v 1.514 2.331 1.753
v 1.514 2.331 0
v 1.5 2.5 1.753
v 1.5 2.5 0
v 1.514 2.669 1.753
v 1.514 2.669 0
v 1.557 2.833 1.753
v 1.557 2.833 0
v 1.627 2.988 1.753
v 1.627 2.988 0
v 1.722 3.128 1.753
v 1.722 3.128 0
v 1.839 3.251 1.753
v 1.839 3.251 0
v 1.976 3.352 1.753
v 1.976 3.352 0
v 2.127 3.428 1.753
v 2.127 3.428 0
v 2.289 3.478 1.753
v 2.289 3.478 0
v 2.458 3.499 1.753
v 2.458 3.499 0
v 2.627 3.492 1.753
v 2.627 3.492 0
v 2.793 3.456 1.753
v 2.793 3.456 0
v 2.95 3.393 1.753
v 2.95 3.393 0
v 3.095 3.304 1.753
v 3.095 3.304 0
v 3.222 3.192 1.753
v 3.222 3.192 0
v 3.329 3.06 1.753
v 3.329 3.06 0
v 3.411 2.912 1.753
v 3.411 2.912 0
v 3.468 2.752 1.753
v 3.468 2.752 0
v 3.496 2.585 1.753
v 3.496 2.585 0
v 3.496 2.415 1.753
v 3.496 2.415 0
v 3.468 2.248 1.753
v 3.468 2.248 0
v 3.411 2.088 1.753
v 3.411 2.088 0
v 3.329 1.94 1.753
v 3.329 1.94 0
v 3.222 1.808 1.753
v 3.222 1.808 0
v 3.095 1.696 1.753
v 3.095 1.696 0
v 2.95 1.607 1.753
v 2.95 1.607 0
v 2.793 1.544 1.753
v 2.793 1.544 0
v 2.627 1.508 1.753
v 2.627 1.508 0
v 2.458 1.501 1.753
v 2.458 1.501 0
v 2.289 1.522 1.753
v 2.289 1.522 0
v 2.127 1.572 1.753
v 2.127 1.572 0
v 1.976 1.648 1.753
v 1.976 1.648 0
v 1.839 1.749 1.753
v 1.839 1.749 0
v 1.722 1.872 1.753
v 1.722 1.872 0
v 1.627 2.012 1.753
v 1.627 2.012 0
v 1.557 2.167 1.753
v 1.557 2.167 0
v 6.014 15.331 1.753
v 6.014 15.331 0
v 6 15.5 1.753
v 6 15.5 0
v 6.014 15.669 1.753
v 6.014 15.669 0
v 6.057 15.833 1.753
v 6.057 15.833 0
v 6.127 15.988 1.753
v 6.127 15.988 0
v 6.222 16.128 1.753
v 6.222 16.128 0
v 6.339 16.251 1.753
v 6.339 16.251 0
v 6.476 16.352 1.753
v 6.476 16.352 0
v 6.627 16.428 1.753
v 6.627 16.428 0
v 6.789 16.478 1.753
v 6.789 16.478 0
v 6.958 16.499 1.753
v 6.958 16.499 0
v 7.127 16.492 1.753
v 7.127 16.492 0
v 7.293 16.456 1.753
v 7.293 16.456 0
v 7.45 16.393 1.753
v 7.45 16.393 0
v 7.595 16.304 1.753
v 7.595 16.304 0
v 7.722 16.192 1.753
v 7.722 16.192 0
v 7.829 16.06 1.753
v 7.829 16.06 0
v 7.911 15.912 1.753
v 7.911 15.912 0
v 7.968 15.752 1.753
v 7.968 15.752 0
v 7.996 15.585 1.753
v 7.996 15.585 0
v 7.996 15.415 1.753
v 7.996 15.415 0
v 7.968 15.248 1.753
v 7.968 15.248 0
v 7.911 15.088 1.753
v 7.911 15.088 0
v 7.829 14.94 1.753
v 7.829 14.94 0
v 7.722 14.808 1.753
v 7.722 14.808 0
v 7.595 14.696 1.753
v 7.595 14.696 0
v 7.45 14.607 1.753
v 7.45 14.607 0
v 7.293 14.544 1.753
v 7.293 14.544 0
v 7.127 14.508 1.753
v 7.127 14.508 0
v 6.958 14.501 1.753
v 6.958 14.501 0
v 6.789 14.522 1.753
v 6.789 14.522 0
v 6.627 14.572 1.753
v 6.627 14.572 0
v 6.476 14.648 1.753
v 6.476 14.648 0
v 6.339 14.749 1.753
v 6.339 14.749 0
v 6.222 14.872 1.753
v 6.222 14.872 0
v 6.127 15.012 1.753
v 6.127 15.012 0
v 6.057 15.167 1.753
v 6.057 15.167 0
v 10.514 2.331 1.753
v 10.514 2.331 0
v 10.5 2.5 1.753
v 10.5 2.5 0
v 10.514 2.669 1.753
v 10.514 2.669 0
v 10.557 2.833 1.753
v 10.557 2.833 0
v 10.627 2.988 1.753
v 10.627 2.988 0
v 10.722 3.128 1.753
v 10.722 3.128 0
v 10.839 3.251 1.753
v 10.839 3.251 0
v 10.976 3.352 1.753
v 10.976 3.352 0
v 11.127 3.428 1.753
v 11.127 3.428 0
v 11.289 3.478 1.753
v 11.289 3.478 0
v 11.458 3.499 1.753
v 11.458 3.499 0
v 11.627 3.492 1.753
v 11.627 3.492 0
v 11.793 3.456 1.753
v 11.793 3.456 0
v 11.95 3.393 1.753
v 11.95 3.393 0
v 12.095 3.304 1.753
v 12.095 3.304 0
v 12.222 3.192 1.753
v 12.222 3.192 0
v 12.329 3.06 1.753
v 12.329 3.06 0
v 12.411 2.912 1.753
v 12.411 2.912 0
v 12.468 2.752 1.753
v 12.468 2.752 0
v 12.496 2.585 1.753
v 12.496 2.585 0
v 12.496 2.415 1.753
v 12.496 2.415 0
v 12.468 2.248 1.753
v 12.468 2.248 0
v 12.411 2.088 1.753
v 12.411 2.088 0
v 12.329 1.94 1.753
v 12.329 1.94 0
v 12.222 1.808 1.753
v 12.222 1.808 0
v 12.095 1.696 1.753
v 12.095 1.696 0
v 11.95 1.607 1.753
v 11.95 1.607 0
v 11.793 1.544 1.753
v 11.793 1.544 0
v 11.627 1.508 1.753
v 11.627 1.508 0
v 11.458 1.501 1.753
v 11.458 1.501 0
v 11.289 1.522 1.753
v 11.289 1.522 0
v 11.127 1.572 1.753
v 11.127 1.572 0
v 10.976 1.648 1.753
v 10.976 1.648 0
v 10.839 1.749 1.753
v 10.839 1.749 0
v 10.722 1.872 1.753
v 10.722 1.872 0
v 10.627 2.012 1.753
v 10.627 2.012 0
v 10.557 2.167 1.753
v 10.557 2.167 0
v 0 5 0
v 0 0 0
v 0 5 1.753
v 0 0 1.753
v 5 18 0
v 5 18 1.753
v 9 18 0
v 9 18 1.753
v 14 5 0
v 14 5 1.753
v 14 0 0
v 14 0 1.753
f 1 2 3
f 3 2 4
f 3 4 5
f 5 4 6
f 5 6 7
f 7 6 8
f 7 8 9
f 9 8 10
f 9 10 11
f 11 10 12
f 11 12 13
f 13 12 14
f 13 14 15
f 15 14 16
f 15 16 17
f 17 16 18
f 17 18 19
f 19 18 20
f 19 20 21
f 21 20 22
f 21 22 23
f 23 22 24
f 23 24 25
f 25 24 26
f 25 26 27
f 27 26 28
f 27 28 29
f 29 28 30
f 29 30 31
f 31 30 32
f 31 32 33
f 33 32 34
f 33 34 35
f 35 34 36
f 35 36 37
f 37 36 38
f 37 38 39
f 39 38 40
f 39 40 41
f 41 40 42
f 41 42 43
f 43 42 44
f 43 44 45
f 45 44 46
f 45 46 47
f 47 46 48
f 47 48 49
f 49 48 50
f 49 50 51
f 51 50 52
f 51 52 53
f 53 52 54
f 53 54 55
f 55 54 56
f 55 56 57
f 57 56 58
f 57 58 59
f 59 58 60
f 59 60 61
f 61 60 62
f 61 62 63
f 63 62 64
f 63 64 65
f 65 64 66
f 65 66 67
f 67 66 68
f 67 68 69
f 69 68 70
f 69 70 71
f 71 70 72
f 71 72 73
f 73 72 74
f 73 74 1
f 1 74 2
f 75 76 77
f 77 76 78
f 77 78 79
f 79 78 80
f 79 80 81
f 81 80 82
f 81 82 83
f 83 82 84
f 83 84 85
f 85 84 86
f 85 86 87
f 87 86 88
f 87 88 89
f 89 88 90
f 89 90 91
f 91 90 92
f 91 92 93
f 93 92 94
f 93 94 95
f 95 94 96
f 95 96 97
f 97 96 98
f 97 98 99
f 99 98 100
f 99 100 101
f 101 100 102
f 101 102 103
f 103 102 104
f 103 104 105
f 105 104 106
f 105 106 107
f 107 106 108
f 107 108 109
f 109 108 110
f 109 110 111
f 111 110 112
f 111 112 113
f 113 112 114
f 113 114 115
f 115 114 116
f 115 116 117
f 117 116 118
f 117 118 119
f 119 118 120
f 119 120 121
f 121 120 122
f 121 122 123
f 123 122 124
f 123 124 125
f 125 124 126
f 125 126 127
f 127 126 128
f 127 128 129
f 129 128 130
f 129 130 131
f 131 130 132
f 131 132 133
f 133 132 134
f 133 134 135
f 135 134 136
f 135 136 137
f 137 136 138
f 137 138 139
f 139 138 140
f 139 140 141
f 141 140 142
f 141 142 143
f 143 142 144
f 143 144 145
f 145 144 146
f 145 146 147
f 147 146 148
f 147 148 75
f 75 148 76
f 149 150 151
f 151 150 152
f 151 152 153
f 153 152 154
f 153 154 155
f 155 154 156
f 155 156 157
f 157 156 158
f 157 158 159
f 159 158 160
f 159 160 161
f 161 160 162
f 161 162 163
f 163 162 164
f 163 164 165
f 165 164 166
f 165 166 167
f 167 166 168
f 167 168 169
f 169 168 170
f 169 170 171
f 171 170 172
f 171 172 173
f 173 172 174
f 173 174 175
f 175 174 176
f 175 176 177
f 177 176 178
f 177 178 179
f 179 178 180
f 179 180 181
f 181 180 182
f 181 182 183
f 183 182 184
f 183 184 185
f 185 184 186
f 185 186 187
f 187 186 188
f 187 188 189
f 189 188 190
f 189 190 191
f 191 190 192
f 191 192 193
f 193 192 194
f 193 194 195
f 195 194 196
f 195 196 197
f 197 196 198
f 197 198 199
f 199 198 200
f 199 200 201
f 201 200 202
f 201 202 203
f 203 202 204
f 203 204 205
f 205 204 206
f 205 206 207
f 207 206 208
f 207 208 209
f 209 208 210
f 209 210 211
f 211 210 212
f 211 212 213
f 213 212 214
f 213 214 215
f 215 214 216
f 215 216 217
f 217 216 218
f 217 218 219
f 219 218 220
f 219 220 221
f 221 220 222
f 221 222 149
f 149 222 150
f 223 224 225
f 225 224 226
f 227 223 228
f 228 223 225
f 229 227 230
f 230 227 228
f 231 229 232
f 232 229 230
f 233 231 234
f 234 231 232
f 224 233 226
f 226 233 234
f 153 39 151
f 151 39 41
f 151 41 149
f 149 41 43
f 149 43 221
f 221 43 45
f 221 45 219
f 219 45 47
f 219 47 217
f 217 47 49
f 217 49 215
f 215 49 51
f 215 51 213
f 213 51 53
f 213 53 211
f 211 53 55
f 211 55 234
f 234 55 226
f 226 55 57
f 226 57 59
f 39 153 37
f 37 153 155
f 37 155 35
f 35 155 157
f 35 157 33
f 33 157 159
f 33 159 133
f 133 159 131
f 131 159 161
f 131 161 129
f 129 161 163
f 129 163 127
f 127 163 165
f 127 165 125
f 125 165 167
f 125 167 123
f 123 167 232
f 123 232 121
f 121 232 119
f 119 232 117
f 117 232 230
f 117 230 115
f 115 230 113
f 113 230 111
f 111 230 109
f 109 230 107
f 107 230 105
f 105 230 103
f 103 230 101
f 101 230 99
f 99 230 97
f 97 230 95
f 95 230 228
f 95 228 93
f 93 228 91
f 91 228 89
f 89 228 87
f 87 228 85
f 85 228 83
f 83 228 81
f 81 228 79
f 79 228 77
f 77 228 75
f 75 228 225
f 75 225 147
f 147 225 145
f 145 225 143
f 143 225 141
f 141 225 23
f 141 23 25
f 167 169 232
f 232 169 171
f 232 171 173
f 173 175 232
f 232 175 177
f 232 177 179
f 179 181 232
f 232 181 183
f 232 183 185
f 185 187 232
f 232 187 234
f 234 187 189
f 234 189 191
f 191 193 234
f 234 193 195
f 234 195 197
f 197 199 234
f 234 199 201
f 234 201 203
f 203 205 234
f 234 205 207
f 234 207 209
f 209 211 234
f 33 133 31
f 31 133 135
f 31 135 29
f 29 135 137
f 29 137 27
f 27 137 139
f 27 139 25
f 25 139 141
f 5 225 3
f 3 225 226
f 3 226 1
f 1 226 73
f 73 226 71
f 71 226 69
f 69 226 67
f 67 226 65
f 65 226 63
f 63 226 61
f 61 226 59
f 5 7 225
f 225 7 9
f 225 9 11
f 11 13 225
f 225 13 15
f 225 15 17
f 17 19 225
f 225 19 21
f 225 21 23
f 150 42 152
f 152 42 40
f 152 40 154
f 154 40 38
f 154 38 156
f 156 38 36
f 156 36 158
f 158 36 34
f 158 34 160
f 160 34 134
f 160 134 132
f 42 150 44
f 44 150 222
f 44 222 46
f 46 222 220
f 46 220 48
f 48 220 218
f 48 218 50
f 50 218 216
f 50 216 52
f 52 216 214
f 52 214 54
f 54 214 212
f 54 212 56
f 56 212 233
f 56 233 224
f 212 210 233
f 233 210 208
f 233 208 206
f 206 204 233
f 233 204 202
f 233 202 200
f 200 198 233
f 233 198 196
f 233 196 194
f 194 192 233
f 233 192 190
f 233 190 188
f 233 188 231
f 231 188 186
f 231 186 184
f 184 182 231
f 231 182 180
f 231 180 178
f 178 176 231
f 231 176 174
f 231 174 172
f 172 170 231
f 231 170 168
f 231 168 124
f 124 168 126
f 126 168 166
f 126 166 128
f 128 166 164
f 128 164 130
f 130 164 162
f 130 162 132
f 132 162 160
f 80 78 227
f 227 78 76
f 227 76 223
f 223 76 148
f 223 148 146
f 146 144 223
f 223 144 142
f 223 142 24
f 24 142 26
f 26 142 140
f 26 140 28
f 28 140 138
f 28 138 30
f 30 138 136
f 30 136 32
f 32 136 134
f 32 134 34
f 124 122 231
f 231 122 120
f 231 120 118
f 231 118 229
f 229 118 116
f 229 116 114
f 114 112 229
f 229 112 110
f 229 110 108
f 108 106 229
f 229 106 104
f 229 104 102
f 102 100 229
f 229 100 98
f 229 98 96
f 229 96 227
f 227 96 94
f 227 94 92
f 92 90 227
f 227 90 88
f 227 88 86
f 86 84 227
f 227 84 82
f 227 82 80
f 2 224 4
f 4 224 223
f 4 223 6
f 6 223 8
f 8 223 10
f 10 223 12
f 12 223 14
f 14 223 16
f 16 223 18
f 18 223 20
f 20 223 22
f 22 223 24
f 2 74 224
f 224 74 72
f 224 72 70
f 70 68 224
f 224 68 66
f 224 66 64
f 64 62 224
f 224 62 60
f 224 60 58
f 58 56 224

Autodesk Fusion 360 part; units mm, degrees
sketch "windowThroughHoles" plane through (0, 0, 0) normal (0, 0, 1) x (1, 0, 0)
  line L0 (0, 0) -> (14, 0)
  line L1 (0, 5) -> (5, 18)
  circle A0 centre (7, 15.5) radius 1
  circle A1 centre (2.5, 2.5) radius 1
  circle A2 centre (11.5, 2.5) radius 1
  line L2 (14, 18) -> (0, 18)
  line L3 (0, 18) -> (0, 0)
  line L4 (5, 18) -> (9, 18)
  line L5 (0, 0) -> (0, 5)
  line L6 (14, 5) -> (9, 18)
  line L7 (0, 0) -> (14, 0)
  line L8 (14, 0) -> (14, 5)
  line L9 (14, 0) -> (14, 18)
  dimension "d1" = 13
  dimension "d2" = 4.5
  dimension "d3" = 13
  dimension "d4" = 4.5
  dimension "d5" = 18
  dimension "d6" = 14
  dimension "d7" = 13.9284
  dimension "d8" = 13.9284
  dimension "d9" = 4
  dimension "d10" = 2
extrude "Extrude1" add sketch "windowThroughHoles" along normal blind 1.7526 contours L0 L1 L2 L3 L4 L5 L6 L7 L8 L9
